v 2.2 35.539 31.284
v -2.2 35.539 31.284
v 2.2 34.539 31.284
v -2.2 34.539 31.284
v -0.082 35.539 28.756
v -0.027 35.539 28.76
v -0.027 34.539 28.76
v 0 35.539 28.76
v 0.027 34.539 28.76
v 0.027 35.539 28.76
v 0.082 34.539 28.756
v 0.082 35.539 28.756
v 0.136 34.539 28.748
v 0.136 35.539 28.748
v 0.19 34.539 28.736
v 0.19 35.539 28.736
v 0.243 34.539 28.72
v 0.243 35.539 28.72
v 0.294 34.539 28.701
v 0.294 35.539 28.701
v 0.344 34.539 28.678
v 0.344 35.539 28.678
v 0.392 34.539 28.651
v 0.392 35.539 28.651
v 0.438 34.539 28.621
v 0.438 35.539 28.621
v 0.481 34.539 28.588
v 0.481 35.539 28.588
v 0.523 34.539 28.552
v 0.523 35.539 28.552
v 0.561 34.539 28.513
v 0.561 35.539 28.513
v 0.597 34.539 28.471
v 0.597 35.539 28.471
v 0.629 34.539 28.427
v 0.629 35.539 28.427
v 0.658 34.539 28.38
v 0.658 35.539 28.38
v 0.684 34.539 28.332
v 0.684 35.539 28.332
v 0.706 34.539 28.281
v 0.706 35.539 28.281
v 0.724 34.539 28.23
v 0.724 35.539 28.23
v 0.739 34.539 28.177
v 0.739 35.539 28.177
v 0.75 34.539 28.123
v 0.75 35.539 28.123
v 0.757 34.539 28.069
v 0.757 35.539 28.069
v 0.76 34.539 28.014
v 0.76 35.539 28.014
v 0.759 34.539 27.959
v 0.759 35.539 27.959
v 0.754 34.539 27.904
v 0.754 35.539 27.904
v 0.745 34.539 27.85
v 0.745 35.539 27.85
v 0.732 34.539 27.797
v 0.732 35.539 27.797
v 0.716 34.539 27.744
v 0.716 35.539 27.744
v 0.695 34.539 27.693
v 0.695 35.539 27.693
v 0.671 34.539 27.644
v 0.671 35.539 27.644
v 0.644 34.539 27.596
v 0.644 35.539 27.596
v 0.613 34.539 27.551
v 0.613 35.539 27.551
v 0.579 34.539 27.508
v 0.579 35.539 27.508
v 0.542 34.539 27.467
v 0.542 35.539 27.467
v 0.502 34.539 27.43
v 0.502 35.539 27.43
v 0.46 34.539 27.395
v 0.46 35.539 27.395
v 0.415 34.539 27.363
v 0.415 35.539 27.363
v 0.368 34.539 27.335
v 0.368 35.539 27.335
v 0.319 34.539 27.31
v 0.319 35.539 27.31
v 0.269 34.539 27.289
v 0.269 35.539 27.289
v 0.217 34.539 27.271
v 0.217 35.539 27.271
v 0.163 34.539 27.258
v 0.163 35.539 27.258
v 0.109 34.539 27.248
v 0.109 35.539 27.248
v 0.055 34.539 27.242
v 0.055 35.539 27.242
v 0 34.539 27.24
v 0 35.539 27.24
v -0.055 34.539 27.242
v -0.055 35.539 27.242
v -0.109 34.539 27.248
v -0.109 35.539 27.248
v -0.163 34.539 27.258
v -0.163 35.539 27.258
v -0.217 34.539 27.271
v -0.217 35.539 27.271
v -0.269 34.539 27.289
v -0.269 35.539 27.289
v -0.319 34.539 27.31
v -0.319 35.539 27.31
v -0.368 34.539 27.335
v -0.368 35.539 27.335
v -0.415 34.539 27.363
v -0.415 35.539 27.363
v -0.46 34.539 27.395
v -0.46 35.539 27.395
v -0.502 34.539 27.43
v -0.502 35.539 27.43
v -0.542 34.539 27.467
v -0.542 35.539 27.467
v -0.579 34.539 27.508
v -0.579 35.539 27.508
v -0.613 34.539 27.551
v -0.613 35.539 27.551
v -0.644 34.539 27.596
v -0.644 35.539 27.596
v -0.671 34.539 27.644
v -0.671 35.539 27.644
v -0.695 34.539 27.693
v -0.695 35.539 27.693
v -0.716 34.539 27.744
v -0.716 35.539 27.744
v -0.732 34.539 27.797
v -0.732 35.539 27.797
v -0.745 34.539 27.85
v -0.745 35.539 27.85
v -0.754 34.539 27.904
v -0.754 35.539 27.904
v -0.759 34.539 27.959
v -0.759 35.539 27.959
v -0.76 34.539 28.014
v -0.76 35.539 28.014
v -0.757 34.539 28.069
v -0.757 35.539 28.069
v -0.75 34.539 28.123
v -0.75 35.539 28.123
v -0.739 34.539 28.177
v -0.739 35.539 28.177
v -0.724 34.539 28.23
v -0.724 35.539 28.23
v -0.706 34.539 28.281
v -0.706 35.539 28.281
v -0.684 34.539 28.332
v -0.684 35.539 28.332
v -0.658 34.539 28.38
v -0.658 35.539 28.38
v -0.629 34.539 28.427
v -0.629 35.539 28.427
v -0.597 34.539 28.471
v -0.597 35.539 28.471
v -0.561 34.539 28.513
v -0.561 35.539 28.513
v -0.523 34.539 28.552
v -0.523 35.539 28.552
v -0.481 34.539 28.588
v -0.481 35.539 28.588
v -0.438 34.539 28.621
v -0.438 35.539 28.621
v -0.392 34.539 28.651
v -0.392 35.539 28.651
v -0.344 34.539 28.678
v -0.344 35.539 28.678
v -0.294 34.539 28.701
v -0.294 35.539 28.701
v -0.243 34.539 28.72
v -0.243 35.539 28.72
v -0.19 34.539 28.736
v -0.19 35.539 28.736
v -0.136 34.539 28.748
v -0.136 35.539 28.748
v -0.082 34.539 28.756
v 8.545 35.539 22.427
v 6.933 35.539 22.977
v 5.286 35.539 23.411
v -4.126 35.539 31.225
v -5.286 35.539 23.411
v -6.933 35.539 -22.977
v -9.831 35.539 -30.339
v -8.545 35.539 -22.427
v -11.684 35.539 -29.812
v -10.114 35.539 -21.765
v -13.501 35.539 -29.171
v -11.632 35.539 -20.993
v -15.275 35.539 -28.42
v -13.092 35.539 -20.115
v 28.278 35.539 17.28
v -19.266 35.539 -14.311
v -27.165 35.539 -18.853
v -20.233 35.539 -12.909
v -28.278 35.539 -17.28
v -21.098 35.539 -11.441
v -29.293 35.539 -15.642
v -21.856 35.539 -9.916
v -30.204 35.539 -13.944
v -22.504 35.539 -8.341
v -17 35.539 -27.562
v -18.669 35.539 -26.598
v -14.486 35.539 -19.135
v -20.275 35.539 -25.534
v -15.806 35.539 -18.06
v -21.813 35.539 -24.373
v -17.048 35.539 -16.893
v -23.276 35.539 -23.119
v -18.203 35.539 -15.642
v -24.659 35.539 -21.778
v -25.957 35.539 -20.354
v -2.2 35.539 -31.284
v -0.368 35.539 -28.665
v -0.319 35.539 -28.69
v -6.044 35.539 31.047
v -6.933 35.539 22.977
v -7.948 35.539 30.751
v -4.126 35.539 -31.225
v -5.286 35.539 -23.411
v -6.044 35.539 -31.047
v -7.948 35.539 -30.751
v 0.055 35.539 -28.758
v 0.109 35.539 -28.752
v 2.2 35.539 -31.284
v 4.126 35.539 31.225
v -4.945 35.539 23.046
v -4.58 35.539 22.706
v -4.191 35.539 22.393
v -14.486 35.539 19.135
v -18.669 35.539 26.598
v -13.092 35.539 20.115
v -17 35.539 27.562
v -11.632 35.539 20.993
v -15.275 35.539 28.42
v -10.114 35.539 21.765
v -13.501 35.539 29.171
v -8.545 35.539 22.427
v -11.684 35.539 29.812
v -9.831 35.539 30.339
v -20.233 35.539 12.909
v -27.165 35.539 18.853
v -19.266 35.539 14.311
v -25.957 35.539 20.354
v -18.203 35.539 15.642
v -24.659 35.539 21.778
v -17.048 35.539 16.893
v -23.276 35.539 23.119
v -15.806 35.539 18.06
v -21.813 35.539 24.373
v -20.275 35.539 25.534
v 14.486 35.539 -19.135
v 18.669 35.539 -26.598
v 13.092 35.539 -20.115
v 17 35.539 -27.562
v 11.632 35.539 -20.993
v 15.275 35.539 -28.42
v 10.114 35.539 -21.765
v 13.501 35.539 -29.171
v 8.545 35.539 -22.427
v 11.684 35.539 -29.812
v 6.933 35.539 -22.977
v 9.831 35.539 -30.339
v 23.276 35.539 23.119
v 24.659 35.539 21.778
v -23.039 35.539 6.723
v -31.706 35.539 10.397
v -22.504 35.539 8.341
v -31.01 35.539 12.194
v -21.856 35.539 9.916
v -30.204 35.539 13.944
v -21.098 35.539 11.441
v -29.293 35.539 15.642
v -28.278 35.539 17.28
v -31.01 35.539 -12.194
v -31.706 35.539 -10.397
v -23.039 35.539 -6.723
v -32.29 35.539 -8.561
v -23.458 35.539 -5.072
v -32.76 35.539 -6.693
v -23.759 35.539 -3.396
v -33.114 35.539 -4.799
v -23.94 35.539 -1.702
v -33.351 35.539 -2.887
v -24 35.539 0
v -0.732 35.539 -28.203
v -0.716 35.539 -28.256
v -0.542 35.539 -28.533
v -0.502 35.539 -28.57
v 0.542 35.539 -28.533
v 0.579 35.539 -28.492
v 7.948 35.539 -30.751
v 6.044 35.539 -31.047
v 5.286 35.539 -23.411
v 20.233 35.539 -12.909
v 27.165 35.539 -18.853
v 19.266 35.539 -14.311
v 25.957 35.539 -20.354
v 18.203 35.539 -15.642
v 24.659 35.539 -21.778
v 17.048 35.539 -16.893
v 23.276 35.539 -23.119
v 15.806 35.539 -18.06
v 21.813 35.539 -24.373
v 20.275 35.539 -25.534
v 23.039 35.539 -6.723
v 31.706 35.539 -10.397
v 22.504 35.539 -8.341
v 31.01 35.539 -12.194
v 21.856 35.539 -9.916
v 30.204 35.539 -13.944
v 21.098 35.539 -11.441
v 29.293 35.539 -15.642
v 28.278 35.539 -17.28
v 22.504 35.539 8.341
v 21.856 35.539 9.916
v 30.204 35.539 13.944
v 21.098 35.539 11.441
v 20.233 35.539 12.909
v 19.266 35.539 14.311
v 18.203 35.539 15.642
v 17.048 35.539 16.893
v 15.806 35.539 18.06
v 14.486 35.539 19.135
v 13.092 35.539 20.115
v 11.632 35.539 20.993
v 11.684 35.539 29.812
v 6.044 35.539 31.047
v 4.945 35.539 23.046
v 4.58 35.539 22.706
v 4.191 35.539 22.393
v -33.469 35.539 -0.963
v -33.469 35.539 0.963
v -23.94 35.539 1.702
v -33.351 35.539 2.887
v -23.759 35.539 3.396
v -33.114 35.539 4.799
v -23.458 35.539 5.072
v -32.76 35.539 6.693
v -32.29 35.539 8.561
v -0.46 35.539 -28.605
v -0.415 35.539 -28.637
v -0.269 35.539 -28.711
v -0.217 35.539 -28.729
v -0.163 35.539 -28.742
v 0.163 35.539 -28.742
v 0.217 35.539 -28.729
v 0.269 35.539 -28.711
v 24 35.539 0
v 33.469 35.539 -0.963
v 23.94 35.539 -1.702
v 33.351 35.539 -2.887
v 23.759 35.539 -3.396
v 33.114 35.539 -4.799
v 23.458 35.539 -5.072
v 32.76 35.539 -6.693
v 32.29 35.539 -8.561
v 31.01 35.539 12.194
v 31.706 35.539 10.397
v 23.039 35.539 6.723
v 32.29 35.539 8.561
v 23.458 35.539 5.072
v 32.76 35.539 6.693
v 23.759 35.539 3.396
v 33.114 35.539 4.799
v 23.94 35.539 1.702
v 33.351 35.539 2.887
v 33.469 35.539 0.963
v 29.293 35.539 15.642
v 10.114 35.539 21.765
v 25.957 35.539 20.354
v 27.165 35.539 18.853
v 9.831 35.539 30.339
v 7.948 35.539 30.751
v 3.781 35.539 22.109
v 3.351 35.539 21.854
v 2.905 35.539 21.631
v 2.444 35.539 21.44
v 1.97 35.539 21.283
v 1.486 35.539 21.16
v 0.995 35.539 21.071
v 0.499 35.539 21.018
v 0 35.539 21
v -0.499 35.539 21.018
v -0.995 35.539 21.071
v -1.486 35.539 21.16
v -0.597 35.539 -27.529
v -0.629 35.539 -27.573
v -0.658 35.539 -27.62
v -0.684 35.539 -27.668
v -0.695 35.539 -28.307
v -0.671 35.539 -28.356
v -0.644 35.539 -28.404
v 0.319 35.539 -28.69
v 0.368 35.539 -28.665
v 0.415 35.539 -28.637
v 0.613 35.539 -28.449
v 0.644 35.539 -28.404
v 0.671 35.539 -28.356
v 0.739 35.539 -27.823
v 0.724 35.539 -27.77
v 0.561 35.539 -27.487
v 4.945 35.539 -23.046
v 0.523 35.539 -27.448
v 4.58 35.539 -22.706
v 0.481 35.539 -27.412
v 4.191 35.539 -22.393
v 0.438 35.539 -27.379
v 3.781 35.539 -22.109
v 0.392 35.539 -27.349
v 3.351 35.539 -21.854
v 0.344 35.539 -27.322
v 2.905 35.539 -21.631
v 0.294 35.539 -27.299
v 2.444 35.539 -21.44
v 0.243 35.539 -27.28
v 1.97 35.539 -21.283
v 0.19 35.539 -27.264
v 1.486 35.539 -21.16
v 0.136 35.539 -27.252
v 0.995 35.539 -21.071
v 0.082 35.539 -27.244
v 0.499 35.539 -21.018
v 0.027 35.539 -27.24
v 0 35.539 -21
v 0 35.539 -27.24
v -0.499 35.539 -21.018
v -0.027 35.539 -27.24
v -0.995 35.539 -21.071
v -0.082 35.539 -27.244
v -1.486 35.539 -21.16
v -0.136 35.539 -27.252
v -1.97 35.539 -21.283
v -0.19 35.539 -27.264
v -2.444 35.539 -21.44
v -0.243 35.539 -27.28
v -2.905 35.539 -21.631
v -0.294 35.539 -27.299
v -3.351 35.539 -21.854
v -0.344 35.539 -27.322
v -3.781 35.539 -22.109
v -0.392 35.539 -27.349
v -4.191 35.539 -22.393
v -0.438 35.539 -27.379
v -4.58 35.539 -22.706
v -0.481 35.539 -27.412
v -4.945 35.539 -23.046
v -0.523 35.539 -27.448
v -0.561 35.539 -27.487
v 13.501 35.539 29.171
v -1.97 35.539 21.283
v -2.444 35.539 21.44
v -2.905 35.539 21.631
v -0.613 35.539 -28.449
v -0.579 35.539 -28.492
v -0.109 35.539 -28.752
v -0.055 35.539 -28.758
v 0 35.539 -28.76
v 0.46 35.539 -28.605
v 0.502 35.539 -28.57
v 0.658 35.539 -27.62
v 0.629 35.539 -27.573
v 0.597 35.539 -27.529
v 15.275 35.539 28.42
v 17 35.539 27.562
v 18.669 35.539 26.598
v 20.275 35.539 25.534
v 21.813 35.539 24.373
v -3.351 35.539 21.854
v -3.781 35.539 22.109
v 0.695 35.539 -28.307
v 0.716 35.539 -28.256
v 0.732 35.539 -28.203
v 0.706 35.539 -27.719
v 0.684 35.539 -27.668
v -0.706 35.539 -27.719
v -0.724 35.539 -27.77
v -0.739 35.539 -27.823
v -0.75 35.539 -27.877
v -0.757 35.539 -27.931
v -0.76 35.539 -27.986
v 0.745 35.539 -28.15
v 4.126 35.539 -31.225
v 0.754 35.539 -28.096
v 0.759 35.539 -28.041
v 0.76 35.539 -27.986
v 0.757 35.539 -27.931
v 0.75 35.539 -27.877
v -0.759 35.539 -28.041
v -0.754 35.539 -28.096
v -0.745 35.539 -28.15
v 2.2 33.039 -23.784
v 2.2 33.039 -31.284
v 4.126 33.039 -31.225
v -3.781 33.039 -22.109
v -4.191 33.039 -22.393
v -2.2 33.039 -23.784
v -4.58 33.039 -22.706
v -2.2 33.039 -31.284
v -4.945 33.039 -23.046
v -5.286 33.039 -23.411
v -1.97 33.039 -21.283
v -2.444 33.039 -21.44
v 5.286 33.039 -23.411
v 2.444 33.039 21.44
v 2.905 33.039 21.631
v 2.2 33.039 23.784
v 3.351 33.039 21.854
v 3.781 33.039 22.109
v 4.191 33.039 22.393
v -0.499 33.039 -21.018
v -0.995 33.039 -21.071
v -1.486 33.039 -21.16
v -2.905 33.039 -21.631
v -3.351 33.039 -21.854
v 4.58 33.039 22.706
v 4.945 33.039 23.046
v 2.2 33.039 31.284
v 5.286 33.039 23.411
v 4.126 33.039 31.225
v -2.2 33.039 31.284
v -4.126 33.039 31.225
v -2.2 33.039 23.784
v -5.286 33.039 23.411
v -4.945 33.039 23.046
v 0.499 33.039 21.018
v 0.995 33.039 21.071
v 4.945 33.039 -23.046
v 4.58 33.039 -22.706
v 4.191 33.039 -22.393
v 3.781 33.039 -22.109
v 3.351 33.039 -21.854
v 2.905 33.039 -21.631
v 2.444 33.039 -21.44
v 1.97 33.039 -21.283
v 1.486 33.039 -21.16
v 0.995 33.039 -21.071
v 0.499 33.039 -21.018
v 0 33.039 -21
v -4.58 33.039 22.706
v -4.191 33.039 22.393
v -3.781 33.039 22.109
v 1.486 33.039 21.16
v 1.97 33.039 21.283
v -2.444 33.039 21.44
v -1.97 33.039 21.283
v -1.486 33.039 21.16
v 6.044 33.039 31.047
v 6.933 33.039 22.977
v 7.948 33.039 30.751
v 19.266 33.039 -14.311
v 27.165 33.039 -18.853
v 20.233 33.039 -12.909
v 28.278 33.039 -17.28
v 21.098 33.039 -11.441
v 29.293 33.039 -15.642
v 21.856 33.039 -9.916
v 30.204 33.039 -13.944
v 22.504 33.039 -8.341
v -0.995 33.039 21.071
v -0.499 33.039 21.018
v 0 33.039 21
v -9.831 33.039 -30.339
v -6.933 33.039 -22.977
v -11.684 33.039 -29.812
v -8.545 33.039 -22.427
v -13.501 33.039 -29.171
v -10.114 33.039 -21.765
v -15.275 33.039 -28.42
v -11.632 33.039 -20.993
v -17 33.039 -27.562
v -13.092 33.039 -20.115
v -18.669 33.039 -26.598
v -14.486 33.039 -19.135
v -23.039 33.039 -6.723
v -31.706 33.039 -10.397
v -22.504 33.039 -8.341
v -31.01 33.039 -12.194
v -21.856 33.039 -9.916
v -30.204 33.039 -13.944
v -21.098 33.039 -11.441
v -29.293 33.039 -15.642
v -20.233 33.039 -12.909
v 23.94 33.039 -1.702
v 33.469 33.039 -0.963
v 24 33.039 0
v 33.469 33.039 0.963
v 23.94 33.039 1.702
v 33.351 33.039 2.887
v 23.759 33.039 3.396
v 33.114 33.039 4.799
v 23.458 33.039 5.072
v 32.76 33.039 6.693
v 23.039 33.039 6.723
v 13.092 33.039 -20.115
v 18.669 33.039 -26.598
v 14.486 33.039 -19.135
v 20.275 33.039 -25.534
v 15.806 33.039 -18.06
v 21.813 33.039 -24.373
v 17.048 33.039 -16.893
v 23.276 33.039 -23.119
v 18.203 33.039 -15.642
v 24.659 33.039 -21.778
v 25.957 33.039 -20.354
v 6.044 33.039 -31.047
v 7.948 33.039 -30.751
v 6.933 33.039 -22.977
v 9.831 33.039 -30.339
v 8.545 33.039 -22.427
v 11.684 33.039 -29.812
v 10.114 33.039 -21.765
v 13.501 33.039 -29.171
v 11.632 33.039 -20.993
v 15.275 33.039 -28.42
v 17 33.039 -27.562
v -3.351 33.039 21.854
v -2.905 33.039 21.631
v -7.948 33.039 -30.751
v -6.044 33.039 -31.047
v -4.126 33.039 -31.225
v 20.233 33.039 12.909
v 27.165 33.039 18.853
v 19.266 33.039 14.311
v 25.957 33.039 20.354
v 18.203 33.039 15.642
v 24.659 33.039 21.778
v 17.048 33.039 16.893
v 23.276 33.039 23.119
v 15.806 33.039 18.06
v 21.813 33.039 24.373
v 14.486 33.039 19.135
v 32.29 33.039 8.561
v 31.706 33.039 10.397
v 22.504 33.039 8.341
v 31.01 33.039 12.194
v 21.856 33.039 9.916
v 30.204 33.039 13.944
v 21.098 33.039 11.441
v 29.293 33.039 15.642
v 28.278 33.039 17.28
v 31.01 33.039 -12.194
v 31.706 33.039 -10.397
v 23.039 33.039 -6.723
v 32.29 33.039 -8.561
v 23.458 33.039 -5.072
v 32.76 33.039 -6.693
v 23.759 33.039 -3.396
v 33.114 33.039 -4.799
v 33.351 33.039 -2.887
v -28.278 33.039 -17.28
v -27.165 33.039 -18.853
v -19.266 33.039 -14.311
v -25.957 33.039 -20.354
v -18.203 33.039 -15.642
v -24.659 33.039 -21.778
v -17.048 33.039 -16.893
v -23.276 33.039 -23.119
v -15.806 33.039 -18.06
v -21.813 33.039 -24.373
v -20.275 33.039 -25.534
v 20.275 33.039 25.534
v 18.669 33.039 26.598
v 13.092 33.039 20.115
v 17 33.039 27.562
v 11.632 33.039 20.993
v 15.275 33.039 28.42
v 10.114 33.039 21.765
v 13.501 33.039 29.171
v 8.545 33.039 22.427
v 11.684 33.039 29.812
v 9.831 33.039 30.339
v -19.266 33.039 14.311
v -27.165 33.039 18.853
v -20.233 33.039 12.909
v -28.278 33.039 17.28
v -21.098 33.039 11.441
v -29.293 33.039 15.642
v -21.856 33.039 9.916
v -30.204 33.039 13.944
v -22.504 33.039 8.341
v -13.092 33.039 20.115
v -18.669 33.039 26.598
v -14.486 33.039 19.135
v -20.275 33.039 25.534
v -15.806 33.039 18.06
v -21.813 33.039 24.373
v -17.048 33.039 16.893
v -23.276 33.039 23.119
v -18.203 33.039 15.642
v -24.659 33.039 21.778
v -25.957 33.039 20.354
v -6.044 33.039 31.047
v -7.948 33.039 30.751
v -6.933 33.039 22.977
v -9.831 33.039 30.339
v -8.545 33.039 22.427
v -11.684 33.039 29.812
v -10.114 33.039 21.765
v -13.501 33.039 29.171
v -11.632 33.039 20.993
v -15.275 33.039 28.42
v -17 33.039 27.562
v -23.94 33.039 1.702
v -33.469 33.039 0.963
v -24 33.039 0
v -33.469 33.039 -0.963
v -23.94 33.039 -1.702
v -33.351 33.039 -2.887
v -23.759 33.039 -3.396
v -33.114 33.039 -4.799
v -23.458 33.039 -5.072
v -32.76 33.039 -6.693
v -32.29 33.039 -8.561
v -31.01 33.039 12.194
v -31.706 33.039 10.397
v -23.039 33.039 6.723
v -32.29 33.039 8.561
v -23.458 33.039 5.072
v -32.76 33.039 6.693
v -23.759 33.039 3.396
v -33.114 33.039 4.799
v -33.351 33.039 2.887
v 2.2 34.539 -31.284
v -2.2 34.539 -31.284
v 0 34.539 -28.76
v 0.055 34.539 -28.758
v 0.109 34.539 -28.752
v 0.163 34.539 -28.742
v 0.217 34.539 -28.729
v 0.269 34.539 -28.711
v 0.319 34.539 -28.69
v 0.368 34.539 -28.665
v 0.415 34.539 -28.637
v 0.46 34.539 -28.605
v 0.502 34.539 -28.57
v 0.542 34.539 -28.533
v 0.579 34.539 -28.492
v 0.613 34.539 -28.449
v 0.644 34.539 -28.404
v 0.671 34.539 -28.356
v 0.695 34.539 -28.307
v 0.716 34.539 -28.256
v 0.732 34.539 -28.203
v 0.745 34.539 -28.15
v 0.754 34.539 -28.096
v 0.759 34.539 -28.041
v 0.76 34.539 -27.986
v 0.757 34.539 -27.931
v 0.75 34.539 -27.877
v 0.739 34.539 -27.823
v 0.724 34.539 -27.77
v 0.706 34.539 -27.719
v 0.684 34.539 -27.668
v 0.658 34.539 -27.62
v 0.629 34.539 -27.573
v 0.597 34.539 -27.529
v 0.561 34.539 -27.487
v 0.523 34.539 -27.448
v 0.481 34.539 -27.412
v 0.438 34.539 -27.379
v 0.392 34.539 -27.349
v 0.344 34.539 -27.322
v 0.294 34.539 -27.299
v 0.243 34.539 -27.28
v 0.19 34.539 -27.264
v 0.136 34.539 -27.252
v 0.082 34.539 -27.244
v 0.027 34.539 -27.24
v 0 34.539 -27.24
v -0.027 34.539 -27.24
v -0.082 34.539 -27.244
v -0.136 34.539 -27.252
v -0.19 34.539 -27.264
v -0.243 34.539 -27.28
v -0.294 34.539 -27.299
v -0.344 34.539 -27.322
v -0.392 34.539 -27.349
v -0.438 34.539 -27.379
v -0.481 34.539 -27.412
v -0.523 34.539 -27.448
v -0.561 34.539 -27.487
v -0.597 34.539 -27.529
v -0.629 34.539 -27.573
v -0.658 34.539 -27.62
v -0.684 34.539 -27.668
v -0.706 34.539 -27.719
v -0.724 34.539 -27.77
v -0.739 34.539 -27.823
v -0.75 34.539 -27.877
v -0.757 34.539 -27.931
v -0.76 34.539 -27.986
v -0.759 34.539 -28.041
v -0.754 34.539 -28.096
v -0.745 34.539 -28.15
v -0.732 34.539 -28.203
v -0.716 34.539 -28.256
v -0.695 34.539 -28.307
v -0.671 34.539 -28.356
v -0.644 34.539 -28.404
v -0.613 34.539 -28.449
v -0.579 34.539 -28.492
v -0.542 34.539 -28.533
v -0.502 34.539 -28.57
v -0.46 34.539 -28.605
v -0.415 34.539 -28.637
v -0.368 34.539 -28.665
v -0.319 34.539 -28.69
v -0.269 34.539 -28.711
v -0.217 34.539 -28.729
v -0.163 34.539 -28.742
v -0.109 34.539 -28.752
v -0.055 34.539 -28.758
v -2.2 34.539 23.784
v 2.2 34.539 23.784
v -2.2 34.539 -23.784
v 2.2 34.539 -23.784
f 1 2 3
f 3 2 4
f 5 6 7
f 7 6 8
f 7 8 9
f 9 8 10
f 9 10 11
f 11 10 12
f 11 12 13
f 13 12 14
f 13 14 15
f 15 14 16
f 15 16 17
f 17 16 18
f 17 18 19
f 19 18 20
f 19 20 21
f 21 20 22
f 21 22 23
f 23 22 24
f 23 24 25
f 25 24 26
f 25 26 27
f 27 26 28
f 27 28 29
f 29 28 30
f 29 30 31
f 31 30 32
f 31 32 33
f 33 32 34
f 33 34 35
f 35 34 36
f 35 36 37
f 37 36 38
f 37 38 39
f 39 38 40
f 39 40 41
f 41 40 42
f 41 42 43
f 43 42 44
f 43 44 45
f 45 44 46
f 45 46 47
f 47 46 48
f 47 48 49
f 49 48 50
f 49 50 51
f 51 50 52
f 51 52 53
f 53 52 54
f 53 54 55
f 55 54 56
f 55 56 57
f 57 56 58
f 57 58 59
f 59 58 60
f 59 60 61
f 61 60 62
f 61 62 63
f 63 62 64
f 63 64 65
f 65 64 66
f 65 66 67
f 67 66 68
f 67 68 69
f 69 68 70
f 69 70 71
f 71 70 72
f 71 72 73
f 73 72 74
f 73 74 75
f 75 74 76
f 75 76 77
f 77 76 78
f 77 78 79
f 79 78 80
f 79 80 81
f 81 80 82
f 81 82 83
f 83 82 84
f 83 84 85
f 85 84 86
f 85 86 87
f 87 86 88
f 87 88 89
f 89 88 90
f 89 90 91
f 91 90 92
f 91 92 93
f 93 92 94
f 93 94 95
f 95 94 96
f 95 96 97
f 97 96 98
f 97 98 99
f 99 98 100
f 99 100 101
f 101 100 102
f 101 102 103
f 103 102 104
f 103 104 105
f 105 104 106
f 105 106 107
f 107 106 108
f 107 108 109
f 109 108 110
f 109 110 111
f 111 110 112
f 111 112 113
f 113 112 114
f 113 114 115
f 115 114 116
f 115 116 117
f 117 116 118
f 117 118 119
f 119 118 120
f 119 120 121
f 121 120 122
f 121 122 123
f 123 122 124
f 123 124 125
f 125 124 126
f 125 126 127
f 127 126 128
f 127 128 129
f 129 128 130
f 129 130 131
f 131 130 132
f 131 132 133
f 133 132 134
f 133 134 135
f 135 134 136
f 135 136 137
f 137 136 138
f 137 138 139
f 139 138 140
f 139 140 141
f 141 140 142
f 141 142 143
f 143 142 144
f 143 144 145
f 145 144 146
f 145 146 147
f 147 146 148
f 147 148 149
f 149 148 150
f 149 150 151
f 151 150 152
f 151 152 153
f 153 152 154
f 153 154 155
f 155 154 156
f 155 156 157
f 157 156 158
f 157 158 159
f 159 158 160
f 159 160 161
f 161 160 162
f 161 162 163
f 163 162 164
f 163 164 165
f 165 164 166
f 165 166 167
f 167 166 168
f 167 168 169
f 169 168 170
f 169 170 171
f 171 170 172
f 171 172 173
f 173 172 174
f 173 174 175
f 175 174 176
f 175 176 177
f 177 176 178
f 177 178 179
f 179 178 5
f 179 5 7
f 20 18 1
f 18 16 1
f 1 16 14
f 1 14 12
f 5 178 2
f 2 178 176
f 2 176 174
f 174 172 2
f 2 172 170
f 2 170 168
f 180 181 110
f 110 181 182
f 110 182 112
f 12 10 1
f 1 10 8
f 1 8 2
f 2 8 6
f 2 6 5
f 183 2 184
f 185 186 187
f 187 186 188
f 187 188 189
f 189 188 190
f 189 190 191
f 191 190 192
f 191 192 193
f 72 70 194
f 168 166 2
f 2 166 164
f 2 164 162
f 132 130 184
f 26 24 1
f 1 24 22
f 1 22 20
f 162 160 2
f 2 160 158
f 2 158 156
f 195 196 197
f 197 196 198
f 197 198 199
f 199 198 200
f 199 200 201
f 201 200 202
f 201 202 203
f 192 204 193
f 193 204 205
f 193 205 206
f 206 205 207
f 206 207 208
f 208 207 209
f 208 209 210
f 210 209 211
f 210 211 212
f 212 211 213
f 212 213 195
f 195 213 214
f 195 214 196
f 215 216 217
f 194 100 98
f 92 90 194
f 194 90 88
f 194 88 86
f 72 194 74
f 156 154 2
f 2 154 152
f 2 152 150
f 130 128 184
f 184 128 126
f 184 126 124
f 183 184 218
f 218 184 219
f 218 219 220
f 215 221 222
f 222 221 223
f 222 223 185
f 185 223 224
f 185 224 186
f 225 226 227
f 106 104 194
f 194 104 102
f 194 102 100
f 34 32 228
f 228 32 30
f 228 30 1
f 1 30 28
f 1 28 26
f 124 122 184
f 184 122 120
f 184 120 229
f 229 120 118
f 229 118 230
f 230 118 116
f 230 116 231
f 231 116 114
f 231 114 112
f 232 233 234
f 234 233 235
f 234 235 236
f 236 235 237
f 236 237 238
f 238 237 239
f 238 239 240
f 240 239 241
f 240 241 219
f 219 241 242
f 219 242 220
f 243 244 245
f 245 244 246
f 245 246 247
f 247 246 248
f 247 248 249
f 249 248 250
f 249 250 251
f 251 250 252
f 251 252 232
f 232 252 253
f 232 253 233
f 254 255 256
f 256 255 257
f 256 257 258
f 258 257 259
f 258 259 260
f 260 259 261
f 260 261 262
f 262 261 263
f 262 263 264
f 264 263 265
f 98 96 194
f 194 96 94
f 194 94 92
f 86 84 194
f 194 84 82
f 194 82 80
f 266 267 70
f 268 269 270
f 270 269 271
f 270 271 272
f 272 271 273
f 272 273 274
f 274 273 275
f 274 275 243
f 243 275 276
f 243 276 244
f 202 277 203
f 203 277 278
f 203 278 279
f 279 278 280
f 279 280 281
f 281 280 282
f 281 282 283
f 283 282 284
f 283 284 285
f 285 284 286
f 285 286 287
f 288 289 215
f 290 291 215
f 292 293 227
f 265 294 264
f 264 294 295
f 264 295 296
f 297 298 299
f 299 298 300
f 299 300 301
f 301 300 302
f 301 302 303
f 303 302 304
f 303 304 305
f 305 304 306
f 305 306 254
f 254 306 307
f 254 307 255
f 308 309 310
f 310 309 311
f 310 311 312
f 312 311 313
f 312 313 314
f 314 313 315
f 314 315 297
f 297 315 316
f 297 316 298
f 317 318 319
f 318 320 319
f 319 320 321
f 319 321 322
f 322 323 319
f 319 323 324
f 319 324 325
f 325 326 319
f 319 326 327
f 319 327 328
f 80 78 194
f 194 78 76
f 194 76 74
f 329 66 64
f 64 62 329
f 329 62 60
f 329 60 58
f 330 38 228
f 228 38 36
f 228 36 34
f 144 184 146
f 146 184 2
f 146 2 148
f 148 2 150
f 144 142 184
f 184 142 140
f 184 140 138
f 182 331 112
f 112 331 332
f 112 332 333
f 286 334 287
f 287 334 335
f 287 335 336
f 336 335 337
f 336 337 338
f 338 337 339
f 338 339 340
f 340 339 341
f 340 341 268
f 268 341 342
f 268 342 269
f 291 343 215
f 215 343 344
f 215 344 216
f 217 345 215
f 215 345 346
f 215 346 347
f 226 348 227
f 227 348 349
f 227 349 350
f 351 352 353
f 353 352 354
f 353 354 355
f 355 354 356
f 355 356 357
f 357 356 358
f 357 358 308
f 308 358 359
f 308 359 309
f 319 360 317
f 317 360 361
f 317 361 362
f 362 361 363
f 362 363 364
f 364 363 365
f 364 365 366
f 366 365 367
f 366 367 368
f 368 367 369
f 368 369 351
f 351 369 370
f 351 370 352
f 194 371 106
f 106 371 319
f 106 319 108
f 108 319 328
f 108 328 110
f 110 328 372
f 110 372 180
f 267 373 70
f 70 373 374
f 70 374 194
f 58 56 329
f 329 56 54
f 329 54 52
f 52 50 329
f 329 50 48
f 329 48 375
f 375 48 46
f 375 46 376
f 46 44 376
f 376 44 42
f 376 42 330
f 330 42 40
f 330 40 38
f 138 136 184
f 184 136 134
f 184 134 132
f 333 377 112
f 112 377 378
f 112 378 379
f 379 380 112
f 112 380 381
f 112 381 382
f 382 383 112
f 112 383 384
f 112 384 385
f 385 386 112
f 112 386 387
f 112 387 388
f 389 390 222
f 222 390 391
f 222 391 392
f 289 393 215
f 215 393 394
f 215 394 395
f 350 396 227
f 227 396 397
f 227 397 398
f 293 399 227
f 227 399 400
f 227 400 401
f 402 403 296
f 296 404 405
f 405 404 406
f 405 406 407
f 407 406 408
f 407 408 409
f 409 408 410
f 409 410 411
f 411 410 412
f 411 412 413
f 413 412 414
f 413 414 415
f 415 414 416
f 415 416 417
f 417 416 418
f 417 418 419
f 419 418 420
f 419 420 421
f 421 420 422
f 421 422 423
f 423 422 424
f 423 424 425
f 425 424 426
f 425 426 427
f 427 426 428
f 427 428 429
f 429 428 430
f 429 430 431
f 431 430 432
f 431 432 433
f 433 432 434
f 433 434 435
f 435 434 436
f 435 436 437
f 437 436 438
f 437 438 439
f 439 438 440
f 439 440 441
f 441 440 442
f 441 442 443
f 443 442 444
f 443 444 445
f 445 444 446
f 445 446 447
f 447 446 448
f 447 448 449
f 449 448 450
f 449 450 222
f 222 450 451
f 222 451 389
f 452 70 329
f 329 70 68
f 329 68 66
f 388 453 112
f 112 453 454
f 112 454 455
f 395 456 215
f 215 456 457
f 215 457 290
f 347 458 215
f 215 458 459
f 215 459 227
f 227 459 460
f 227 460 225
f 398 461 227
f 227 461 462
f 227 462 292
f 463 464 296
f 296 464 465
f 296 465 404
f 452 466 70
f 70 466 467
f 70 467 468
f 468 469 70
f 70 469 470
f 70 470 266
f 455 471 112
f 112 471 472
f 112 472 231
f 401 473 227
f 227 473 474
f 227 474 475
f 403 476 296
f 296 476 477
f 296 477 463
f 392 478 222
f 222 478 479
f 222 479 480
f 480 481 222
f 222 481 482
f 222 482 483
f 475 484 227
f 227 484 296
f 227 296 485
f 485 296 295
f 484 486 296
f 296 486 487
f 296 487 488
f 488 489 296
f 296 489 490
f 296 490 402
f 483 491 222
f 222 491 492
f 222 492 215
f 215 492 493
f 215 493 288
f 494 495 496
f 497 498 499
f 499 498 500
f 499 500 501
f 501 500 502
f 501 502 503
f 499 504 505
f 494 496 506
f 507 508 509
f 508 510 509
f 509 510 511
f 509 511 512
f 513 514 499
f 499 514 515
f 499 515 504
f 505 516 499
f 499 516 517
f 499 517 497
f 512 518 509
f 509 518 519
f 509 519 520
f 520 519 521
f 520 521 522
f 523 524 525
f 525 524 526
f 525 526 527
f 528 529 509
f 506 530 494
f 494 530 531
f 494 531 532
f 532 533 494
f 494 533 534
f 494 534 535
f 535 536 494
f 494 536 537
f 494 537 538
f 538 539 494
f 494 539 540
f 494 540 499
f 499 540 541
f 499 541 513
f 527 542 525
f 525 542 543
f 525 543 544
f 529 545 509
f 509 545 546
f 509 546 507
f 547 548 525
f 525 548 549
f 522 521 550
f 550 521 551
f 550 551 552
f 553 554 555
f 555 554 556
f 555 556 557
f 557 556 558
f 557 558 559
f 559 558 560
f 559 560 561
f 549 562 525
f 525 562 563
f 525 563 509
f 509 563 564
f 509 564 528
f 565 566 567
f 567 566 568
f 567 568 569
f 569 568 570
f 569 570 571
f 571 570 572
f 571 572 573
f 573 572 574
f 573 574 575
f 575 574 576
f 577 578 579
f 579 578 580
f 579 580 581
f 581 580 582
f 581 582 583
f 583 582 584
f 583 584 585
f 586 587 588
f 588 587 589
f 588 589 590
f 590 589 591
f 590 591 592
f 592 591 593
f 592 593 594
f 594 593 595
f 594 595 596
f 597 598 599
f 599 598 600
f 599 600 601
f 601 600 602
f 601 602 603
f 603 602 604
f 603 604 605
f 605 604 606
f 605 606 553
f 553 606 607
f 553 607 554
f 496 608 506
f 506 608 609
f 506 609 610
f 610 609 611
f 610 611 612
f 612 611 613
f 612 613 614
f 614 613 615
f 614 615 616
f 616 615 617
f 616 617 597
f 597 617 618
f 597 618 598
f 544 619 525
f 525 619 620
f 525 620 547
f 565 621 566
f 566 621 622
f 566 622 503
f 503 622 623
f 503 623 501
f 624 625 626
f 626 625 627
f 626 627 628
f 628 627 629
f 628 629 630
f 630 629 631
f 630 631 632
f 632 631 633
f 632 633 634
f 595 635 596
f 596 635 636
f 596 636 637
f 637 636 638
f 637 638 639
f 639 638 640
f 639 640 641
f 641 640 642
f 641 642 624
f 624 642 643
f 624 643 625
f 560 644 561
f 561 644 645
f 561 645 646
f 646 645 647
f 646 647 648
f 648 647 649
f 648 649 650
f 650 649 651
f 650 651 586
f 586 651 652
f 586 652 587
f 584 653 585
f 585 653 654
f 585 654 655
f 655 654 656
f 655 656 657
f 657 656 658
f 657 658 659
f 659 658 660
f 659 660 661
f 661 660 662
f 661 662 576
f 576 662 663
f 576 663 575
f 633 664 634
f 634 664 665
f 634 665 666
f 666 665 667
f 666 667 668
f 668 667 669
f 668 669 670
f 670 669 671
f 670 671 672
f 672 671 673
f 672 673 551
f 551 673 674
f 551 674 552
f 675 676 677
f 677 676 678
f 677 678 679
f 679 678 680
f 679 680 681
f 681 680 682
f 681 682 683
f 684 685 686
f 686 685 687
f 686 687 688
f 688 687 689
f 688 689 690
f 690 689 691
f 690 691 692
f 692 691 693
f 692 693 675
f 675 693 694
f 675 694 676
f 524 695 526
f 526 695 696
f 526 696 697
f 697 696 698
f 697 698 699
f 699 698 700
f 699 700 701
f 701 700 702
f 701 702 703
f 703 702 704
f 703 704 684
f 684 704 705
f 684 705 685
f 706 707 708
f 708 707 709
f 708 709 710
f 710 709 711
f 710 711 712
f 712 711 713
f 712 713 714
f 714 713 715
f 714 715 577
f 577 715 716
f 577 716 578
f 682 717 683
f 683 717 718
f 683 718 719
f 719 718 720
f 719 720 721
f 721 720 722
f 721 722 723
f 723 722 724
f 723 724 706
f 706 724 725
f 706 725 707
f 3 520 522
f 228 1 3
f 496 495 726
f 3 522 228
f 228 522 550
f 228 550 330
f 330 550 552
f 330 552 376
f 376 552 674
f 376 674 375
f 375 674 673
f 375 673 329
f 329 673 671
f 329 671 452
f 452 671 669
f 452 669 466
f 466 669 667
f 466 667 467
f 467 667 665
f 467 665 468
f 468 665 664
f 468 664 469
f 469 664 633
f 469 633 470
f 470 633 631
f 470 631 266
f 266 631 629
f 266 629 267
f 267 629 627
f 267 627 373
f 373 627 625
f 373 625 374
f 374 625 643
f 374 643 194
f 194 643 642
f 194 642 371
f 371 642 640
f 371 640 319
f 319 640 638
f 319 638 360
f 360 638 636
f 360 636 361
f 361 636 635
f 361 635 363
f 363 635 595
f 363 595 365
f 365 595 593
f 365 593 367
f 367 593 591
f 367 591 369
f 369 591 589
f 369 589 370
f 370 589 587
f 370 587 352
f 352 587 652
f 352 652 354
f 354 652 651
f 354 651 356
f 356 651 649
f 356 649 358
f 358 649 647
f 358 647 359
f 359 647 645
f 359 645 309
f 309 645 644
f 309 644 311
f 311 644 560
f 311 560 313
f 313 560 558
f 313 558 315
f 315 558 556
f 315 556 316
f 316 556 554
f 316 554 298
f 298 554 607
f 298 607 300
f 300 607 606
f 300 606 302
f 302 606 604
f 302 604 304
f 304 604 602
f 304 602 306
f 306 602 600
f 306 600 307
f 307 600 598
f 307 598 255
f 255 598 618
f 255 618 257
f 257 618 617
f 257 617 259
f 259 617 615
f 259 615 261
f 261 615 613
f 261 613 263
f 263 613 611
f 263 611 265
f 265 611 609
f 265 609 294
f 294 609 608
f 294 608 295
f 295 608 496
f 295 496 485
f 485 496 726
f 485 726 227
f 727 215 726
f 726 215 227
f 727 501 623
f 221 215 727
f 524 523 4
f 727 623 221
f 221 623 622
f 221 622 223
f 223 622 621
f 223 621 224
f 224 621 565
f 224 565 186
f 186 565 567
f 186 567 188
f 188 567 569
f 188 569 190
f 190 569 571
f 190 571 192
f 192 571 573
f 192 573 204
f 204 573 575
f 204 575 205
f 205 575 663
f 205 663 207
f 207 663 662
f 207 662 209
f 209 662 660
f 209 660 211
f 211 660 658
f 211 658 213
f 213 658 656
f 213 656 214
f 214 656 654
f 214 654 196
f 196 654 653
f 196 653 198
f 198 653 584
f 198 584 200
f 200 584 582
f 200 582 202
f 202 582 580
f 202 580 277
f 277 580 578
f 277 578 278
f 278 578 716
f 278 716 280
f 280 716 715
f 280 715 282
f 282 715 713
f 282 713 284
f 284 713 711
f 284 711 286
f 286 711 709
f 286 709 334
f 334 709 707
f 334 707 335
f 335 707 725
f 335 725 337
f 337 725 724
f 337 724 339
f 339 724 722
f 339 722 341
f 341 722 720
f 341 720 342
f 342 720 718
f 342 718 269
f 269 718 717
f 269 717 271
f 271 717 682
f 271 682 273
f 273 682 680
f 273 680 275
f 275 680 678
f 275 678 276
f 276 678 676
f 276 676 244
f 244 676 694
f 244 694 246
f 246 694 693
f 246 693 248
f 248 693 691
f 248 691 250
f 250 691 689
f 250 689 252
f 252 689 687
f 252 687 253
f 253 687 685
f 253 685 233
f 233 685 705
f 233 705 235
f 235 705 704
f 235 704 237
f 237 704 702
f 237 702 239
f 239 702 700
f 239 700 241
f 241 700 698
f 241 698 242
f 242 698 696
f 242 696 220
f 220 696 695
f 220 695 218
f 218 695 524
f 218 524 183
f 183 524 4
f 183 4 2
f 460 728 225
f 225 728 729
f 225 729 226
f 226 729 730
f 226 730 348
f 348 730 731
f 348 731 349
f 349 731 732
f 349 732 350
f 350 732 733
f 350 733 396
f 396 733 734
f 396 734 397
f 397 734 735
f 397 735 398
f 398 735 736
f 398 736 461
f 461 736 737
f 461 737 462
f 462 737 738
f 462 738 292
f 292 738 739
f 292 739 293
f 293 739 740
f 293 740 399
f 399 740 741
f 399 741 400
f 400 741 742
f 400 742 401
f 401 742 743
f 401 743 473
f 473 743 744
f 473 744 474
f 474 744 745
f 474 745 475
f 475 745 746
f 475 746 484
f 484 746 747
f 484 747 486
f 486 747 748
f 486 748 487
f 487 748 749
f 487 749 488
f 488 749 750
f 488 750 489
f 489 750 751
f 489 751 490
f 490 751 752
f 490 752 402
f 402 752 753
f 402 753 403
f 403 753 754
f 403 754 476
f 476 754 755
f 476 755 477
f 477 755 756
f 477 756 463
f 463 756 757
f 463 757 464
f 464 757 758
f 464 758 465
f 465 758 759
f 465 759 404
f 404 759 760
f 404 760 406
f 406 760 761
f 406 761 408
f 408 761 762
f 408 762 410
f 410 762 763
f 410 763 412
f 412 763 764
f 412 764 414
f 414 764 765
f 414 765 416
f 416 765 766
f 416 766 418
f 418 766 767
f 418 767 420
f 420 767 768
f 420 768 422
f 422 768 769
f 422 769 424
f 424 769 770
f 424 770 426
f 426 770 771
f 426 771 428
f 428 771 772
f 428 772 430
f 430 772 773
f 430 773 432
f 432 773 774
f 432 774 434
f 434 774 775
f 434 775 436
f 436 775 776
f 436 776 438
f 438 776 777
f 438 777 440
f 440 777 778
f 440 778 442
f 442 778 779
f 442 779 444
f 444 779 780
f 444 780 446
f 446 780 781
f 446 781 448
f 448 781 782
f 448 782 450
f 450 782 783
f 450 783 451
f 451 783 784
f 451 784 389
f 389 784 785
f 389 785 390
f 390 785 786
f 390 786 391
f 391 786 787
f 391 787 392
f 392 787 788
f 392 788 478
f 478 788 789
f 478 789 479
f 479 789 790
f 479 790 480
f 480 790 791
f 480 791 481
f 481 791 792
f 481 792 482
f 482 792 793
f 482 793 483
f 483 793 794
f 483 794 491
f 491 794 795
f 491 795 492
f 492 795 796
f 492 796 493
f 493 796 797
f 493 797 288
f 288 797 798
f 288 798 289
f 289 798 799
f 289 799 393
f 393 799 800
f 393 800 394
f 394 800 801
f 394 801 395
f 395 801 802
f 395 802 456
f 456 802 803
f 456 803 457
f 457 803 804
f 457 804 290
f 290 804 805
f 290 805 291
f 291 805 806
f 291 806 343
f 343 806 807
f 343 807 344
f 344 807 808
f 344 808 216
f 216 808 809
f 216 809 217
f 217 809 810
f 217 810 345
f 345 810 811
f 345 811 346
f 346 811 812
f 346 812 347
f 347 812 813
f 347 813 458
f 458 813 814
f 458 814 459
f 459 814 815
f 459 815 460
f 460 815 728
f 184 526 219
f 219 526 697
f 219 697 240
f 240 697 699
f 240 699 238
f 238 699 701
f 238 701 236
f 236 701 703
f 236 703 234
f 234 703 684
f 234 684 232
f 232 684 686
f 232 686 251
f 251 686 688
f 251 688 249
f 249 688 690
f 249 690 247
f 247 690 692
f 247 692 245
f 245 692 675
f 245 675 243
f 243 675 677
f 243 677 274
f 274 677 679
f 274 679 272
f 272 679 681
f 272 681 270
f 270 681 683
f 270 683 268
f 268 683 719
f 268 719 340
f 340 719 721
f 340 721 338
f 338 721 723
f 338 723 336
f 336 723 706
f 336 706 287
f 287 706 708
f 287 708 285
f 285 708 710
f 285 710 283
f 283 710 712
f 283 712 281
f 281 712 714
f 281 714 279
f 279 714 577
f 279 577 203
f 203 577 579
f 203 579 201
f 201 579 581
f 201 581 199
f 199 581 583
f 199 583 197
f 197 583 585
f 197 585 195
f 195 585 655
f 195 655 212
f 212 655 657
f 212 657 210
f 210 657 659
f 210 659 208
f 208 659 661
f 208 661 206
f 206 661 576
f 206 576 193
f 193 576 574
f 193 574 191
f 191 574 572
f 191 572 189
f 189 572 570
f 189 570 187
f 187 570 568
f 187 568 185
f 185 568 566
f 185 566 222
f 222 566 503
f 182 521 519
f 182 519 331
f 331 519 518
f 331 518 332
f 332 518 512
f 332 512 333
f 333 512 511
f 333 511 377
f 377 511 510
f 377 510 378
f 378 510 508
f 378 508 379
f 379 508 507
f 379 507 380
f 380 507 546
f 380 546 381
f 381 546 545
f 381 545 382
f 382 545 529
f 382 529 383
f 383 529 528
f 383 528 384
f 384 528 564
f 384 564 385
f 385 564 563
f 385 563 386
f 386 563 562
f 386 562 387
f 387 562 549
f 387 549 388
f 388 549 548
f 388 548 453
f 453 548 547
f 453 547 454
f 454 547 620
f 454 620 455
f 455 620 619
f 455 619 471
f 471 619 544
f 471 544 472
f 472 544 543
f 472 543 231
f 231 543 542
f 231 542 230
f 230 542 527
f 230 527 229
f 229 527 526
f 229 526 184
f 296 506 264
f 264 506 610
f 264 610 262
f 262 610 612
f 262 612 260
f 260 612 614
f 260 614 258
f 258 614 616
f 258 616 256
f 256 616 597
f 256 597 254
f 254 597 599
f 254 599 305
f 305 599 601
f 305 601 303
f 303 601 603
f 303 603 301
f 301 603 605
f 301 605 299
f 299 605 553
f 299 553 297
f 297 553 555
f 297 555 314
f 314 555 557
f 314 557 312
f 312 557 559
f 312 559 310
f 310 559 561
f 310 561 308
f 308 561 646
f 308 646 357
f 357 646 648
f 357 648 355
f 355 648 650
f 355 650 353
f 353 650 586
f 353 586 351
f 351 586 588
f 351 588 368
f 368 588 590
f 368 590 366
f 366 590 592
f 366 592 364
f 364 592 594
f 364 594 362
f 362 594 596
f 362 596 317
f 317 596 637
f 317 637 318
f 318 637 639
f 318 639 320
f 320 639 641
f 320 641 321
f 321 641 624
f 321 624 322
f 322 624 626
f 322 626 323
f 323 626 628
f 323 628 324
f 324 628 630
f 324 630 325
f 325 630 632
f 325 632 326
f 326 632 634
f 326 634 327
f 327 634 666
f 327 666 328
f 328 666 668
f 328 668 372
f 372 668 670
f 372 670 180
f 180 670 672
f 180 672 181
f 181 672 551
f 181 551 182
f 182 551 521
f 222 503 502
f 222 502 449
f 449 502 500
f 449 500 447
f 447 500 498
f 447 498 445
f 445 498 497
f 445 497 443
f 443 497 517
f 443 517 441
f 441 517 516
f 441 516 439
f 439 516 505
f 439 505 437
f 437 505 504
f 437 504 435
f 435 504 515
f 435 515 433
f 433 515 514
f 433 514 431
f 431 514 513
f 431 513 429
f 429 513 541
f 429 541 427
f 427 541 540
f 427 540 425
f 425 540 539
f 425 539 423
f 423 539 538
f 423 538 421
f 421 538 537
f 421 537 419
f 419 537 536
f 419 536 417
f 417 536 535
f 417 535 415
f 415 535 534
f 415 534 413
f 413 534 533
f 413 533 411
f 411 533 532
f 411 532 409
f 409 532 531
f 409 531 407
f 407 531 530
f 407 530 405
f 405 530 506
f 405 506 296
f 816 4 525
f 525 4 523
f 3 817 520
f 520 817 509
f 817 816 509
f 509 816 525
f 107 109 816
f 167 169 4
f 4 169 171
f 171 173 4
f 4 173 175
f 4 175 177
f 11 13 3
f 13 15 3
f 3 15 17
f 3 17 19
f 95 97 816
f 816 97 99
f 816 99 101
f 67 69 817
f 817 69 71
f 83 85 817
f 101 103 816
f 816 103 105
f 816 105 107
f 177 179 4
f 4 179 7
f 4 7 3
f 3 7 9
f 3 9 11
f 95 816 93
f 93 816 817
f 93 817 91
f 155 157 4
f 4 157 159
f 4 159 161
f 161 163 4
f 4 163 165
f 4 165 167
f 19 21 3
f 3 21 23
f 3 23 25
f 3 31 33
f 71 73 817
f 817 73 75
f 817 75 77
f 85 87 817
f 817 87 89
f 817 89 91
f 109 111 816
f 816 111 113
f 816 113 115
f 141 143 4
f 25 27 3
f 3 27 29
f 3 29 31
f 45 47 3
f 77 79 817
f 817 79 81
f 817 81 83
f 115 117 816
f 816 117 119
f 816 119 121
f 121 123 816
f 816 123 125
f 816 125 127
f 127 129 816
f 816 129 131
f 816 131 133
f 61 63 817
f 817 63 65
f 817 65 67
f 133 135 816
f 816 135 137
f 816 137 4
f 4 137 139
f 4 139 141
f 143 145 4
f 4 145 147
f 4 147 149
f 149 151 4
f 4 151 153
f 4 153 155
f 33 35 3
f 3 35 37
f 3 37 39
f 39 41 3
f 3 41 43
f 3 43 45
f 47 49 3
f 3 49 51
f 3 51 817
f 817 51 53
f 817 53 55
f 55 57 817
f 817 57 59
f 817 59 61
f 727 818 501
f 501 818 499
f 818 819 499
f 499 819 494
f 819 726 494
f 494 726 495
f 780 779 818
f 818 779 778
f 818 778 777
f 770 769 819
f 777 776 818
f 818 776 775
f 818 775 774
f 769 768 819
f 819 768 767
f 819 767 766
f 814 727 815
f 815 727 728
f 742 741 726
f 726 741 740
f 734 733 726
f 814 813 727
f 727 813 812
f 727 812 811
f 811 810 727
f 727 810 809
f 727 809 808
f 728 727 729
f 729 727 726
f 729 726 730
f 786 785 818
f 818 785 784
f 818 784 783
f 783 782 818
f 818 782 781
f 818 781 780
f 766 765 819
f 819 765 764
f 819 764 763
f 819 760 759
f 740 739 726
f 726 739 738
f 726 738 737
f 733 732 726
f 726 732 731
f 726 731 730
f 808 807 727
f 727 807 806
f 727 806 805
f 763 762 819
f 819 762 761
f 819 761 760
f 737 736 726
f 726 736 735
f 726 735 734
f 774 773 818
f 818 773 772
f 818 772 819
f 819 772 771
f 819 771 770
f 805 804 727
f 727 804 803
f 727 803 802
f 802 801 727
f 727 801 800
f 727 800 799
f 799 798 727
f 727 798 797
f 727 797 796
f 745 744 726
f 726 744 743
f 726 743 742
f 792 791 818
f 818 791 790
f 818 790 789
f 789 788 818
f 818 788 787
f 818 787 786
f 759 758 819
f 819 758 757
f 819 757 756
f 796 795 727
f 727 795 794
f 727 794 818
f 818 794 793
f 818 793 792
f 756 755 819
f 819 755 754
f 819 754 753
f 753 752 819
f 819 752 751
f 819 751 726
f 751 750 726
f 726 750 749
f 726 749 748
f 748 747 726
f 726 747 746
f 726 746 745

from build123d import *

# Parameters (mm, degrees)
SKETCH89_R          = 0.76
BOSS_EXTRUDE1_DEPTH = 2.5
SKETCH91_W          = 4.4
SKETCH91_H          = 7.5
CUT_EXTRUDE1_DEPTH  = 1.5


with BuildPart() as part:
    # Sketch89 → Boss-Extrude1 (new body)
    with BuildSketch(Plane(origin=(0, 33.039348741, 0), x_dir=(1, 0, 0), z_dir=(0, 1, 0))):
        with BuildLine():
            Line((-2.2, 31.284010223), (2.2, 31.284010223))
            ThreePointArc((2.2, 31.284010223), (33.484010223, 0), (2.2, -31.284010223))
            Line((2.2, -31.284010223), (-2.2, -31.284010223))
            ThreePointArc((-2.2, -31.284010223), (-33.484010223, 0), (-2.2, 31.284010223))
        make_face()
        with Locations(Location((0, 28, 0), (0, 0, 270))):
            Circle(SKETCH89_R, mode=Mode.SUBTRACT)
        with Locations(Location((0, -28, 0), (0, 0, 270))):
            Circle(SKETCH89_R, mode=Mode.SUBTRACT)
        with BuildLine():
            ThreePointArc((-5.285684122, 23.410714286), (0, 21), (5.285684122, 23.410714286))
            ThreePointArc((5.285684122, 23.410714286), (24, 0), (5.285684122, -23.410714286))
            ThreePointArc((5.285684122, -23.410714286), (0, -21), (-5.285684122, -23.410714286))
            ThreePointArc((-5.285684122, -23.410714286), (-24, 0), (-5.285684122, 23.410714286))
        make_face(mode=Mode.SUBTRACT)
    extrude(amount=BOSS_EXTRUDE1_DEPTH)

    # Sketch91 → Cut-Extrude1 (cut)
    with BuildSketch(Plane.XZ.offset(-33.039348741)):
        with Locations((0, 27.534010223)):
            Rectangle(SKETCH91_W, SKETCH91_H)
        with Locations((0, -27.534010223)):
            Rectangle(SKETCH91_W, SKETCH91_H)
    extrude(amount=-CUT_EXTRUDE1_DEPTH, mode=Mode.SUBTRACT)


solid = part.part
